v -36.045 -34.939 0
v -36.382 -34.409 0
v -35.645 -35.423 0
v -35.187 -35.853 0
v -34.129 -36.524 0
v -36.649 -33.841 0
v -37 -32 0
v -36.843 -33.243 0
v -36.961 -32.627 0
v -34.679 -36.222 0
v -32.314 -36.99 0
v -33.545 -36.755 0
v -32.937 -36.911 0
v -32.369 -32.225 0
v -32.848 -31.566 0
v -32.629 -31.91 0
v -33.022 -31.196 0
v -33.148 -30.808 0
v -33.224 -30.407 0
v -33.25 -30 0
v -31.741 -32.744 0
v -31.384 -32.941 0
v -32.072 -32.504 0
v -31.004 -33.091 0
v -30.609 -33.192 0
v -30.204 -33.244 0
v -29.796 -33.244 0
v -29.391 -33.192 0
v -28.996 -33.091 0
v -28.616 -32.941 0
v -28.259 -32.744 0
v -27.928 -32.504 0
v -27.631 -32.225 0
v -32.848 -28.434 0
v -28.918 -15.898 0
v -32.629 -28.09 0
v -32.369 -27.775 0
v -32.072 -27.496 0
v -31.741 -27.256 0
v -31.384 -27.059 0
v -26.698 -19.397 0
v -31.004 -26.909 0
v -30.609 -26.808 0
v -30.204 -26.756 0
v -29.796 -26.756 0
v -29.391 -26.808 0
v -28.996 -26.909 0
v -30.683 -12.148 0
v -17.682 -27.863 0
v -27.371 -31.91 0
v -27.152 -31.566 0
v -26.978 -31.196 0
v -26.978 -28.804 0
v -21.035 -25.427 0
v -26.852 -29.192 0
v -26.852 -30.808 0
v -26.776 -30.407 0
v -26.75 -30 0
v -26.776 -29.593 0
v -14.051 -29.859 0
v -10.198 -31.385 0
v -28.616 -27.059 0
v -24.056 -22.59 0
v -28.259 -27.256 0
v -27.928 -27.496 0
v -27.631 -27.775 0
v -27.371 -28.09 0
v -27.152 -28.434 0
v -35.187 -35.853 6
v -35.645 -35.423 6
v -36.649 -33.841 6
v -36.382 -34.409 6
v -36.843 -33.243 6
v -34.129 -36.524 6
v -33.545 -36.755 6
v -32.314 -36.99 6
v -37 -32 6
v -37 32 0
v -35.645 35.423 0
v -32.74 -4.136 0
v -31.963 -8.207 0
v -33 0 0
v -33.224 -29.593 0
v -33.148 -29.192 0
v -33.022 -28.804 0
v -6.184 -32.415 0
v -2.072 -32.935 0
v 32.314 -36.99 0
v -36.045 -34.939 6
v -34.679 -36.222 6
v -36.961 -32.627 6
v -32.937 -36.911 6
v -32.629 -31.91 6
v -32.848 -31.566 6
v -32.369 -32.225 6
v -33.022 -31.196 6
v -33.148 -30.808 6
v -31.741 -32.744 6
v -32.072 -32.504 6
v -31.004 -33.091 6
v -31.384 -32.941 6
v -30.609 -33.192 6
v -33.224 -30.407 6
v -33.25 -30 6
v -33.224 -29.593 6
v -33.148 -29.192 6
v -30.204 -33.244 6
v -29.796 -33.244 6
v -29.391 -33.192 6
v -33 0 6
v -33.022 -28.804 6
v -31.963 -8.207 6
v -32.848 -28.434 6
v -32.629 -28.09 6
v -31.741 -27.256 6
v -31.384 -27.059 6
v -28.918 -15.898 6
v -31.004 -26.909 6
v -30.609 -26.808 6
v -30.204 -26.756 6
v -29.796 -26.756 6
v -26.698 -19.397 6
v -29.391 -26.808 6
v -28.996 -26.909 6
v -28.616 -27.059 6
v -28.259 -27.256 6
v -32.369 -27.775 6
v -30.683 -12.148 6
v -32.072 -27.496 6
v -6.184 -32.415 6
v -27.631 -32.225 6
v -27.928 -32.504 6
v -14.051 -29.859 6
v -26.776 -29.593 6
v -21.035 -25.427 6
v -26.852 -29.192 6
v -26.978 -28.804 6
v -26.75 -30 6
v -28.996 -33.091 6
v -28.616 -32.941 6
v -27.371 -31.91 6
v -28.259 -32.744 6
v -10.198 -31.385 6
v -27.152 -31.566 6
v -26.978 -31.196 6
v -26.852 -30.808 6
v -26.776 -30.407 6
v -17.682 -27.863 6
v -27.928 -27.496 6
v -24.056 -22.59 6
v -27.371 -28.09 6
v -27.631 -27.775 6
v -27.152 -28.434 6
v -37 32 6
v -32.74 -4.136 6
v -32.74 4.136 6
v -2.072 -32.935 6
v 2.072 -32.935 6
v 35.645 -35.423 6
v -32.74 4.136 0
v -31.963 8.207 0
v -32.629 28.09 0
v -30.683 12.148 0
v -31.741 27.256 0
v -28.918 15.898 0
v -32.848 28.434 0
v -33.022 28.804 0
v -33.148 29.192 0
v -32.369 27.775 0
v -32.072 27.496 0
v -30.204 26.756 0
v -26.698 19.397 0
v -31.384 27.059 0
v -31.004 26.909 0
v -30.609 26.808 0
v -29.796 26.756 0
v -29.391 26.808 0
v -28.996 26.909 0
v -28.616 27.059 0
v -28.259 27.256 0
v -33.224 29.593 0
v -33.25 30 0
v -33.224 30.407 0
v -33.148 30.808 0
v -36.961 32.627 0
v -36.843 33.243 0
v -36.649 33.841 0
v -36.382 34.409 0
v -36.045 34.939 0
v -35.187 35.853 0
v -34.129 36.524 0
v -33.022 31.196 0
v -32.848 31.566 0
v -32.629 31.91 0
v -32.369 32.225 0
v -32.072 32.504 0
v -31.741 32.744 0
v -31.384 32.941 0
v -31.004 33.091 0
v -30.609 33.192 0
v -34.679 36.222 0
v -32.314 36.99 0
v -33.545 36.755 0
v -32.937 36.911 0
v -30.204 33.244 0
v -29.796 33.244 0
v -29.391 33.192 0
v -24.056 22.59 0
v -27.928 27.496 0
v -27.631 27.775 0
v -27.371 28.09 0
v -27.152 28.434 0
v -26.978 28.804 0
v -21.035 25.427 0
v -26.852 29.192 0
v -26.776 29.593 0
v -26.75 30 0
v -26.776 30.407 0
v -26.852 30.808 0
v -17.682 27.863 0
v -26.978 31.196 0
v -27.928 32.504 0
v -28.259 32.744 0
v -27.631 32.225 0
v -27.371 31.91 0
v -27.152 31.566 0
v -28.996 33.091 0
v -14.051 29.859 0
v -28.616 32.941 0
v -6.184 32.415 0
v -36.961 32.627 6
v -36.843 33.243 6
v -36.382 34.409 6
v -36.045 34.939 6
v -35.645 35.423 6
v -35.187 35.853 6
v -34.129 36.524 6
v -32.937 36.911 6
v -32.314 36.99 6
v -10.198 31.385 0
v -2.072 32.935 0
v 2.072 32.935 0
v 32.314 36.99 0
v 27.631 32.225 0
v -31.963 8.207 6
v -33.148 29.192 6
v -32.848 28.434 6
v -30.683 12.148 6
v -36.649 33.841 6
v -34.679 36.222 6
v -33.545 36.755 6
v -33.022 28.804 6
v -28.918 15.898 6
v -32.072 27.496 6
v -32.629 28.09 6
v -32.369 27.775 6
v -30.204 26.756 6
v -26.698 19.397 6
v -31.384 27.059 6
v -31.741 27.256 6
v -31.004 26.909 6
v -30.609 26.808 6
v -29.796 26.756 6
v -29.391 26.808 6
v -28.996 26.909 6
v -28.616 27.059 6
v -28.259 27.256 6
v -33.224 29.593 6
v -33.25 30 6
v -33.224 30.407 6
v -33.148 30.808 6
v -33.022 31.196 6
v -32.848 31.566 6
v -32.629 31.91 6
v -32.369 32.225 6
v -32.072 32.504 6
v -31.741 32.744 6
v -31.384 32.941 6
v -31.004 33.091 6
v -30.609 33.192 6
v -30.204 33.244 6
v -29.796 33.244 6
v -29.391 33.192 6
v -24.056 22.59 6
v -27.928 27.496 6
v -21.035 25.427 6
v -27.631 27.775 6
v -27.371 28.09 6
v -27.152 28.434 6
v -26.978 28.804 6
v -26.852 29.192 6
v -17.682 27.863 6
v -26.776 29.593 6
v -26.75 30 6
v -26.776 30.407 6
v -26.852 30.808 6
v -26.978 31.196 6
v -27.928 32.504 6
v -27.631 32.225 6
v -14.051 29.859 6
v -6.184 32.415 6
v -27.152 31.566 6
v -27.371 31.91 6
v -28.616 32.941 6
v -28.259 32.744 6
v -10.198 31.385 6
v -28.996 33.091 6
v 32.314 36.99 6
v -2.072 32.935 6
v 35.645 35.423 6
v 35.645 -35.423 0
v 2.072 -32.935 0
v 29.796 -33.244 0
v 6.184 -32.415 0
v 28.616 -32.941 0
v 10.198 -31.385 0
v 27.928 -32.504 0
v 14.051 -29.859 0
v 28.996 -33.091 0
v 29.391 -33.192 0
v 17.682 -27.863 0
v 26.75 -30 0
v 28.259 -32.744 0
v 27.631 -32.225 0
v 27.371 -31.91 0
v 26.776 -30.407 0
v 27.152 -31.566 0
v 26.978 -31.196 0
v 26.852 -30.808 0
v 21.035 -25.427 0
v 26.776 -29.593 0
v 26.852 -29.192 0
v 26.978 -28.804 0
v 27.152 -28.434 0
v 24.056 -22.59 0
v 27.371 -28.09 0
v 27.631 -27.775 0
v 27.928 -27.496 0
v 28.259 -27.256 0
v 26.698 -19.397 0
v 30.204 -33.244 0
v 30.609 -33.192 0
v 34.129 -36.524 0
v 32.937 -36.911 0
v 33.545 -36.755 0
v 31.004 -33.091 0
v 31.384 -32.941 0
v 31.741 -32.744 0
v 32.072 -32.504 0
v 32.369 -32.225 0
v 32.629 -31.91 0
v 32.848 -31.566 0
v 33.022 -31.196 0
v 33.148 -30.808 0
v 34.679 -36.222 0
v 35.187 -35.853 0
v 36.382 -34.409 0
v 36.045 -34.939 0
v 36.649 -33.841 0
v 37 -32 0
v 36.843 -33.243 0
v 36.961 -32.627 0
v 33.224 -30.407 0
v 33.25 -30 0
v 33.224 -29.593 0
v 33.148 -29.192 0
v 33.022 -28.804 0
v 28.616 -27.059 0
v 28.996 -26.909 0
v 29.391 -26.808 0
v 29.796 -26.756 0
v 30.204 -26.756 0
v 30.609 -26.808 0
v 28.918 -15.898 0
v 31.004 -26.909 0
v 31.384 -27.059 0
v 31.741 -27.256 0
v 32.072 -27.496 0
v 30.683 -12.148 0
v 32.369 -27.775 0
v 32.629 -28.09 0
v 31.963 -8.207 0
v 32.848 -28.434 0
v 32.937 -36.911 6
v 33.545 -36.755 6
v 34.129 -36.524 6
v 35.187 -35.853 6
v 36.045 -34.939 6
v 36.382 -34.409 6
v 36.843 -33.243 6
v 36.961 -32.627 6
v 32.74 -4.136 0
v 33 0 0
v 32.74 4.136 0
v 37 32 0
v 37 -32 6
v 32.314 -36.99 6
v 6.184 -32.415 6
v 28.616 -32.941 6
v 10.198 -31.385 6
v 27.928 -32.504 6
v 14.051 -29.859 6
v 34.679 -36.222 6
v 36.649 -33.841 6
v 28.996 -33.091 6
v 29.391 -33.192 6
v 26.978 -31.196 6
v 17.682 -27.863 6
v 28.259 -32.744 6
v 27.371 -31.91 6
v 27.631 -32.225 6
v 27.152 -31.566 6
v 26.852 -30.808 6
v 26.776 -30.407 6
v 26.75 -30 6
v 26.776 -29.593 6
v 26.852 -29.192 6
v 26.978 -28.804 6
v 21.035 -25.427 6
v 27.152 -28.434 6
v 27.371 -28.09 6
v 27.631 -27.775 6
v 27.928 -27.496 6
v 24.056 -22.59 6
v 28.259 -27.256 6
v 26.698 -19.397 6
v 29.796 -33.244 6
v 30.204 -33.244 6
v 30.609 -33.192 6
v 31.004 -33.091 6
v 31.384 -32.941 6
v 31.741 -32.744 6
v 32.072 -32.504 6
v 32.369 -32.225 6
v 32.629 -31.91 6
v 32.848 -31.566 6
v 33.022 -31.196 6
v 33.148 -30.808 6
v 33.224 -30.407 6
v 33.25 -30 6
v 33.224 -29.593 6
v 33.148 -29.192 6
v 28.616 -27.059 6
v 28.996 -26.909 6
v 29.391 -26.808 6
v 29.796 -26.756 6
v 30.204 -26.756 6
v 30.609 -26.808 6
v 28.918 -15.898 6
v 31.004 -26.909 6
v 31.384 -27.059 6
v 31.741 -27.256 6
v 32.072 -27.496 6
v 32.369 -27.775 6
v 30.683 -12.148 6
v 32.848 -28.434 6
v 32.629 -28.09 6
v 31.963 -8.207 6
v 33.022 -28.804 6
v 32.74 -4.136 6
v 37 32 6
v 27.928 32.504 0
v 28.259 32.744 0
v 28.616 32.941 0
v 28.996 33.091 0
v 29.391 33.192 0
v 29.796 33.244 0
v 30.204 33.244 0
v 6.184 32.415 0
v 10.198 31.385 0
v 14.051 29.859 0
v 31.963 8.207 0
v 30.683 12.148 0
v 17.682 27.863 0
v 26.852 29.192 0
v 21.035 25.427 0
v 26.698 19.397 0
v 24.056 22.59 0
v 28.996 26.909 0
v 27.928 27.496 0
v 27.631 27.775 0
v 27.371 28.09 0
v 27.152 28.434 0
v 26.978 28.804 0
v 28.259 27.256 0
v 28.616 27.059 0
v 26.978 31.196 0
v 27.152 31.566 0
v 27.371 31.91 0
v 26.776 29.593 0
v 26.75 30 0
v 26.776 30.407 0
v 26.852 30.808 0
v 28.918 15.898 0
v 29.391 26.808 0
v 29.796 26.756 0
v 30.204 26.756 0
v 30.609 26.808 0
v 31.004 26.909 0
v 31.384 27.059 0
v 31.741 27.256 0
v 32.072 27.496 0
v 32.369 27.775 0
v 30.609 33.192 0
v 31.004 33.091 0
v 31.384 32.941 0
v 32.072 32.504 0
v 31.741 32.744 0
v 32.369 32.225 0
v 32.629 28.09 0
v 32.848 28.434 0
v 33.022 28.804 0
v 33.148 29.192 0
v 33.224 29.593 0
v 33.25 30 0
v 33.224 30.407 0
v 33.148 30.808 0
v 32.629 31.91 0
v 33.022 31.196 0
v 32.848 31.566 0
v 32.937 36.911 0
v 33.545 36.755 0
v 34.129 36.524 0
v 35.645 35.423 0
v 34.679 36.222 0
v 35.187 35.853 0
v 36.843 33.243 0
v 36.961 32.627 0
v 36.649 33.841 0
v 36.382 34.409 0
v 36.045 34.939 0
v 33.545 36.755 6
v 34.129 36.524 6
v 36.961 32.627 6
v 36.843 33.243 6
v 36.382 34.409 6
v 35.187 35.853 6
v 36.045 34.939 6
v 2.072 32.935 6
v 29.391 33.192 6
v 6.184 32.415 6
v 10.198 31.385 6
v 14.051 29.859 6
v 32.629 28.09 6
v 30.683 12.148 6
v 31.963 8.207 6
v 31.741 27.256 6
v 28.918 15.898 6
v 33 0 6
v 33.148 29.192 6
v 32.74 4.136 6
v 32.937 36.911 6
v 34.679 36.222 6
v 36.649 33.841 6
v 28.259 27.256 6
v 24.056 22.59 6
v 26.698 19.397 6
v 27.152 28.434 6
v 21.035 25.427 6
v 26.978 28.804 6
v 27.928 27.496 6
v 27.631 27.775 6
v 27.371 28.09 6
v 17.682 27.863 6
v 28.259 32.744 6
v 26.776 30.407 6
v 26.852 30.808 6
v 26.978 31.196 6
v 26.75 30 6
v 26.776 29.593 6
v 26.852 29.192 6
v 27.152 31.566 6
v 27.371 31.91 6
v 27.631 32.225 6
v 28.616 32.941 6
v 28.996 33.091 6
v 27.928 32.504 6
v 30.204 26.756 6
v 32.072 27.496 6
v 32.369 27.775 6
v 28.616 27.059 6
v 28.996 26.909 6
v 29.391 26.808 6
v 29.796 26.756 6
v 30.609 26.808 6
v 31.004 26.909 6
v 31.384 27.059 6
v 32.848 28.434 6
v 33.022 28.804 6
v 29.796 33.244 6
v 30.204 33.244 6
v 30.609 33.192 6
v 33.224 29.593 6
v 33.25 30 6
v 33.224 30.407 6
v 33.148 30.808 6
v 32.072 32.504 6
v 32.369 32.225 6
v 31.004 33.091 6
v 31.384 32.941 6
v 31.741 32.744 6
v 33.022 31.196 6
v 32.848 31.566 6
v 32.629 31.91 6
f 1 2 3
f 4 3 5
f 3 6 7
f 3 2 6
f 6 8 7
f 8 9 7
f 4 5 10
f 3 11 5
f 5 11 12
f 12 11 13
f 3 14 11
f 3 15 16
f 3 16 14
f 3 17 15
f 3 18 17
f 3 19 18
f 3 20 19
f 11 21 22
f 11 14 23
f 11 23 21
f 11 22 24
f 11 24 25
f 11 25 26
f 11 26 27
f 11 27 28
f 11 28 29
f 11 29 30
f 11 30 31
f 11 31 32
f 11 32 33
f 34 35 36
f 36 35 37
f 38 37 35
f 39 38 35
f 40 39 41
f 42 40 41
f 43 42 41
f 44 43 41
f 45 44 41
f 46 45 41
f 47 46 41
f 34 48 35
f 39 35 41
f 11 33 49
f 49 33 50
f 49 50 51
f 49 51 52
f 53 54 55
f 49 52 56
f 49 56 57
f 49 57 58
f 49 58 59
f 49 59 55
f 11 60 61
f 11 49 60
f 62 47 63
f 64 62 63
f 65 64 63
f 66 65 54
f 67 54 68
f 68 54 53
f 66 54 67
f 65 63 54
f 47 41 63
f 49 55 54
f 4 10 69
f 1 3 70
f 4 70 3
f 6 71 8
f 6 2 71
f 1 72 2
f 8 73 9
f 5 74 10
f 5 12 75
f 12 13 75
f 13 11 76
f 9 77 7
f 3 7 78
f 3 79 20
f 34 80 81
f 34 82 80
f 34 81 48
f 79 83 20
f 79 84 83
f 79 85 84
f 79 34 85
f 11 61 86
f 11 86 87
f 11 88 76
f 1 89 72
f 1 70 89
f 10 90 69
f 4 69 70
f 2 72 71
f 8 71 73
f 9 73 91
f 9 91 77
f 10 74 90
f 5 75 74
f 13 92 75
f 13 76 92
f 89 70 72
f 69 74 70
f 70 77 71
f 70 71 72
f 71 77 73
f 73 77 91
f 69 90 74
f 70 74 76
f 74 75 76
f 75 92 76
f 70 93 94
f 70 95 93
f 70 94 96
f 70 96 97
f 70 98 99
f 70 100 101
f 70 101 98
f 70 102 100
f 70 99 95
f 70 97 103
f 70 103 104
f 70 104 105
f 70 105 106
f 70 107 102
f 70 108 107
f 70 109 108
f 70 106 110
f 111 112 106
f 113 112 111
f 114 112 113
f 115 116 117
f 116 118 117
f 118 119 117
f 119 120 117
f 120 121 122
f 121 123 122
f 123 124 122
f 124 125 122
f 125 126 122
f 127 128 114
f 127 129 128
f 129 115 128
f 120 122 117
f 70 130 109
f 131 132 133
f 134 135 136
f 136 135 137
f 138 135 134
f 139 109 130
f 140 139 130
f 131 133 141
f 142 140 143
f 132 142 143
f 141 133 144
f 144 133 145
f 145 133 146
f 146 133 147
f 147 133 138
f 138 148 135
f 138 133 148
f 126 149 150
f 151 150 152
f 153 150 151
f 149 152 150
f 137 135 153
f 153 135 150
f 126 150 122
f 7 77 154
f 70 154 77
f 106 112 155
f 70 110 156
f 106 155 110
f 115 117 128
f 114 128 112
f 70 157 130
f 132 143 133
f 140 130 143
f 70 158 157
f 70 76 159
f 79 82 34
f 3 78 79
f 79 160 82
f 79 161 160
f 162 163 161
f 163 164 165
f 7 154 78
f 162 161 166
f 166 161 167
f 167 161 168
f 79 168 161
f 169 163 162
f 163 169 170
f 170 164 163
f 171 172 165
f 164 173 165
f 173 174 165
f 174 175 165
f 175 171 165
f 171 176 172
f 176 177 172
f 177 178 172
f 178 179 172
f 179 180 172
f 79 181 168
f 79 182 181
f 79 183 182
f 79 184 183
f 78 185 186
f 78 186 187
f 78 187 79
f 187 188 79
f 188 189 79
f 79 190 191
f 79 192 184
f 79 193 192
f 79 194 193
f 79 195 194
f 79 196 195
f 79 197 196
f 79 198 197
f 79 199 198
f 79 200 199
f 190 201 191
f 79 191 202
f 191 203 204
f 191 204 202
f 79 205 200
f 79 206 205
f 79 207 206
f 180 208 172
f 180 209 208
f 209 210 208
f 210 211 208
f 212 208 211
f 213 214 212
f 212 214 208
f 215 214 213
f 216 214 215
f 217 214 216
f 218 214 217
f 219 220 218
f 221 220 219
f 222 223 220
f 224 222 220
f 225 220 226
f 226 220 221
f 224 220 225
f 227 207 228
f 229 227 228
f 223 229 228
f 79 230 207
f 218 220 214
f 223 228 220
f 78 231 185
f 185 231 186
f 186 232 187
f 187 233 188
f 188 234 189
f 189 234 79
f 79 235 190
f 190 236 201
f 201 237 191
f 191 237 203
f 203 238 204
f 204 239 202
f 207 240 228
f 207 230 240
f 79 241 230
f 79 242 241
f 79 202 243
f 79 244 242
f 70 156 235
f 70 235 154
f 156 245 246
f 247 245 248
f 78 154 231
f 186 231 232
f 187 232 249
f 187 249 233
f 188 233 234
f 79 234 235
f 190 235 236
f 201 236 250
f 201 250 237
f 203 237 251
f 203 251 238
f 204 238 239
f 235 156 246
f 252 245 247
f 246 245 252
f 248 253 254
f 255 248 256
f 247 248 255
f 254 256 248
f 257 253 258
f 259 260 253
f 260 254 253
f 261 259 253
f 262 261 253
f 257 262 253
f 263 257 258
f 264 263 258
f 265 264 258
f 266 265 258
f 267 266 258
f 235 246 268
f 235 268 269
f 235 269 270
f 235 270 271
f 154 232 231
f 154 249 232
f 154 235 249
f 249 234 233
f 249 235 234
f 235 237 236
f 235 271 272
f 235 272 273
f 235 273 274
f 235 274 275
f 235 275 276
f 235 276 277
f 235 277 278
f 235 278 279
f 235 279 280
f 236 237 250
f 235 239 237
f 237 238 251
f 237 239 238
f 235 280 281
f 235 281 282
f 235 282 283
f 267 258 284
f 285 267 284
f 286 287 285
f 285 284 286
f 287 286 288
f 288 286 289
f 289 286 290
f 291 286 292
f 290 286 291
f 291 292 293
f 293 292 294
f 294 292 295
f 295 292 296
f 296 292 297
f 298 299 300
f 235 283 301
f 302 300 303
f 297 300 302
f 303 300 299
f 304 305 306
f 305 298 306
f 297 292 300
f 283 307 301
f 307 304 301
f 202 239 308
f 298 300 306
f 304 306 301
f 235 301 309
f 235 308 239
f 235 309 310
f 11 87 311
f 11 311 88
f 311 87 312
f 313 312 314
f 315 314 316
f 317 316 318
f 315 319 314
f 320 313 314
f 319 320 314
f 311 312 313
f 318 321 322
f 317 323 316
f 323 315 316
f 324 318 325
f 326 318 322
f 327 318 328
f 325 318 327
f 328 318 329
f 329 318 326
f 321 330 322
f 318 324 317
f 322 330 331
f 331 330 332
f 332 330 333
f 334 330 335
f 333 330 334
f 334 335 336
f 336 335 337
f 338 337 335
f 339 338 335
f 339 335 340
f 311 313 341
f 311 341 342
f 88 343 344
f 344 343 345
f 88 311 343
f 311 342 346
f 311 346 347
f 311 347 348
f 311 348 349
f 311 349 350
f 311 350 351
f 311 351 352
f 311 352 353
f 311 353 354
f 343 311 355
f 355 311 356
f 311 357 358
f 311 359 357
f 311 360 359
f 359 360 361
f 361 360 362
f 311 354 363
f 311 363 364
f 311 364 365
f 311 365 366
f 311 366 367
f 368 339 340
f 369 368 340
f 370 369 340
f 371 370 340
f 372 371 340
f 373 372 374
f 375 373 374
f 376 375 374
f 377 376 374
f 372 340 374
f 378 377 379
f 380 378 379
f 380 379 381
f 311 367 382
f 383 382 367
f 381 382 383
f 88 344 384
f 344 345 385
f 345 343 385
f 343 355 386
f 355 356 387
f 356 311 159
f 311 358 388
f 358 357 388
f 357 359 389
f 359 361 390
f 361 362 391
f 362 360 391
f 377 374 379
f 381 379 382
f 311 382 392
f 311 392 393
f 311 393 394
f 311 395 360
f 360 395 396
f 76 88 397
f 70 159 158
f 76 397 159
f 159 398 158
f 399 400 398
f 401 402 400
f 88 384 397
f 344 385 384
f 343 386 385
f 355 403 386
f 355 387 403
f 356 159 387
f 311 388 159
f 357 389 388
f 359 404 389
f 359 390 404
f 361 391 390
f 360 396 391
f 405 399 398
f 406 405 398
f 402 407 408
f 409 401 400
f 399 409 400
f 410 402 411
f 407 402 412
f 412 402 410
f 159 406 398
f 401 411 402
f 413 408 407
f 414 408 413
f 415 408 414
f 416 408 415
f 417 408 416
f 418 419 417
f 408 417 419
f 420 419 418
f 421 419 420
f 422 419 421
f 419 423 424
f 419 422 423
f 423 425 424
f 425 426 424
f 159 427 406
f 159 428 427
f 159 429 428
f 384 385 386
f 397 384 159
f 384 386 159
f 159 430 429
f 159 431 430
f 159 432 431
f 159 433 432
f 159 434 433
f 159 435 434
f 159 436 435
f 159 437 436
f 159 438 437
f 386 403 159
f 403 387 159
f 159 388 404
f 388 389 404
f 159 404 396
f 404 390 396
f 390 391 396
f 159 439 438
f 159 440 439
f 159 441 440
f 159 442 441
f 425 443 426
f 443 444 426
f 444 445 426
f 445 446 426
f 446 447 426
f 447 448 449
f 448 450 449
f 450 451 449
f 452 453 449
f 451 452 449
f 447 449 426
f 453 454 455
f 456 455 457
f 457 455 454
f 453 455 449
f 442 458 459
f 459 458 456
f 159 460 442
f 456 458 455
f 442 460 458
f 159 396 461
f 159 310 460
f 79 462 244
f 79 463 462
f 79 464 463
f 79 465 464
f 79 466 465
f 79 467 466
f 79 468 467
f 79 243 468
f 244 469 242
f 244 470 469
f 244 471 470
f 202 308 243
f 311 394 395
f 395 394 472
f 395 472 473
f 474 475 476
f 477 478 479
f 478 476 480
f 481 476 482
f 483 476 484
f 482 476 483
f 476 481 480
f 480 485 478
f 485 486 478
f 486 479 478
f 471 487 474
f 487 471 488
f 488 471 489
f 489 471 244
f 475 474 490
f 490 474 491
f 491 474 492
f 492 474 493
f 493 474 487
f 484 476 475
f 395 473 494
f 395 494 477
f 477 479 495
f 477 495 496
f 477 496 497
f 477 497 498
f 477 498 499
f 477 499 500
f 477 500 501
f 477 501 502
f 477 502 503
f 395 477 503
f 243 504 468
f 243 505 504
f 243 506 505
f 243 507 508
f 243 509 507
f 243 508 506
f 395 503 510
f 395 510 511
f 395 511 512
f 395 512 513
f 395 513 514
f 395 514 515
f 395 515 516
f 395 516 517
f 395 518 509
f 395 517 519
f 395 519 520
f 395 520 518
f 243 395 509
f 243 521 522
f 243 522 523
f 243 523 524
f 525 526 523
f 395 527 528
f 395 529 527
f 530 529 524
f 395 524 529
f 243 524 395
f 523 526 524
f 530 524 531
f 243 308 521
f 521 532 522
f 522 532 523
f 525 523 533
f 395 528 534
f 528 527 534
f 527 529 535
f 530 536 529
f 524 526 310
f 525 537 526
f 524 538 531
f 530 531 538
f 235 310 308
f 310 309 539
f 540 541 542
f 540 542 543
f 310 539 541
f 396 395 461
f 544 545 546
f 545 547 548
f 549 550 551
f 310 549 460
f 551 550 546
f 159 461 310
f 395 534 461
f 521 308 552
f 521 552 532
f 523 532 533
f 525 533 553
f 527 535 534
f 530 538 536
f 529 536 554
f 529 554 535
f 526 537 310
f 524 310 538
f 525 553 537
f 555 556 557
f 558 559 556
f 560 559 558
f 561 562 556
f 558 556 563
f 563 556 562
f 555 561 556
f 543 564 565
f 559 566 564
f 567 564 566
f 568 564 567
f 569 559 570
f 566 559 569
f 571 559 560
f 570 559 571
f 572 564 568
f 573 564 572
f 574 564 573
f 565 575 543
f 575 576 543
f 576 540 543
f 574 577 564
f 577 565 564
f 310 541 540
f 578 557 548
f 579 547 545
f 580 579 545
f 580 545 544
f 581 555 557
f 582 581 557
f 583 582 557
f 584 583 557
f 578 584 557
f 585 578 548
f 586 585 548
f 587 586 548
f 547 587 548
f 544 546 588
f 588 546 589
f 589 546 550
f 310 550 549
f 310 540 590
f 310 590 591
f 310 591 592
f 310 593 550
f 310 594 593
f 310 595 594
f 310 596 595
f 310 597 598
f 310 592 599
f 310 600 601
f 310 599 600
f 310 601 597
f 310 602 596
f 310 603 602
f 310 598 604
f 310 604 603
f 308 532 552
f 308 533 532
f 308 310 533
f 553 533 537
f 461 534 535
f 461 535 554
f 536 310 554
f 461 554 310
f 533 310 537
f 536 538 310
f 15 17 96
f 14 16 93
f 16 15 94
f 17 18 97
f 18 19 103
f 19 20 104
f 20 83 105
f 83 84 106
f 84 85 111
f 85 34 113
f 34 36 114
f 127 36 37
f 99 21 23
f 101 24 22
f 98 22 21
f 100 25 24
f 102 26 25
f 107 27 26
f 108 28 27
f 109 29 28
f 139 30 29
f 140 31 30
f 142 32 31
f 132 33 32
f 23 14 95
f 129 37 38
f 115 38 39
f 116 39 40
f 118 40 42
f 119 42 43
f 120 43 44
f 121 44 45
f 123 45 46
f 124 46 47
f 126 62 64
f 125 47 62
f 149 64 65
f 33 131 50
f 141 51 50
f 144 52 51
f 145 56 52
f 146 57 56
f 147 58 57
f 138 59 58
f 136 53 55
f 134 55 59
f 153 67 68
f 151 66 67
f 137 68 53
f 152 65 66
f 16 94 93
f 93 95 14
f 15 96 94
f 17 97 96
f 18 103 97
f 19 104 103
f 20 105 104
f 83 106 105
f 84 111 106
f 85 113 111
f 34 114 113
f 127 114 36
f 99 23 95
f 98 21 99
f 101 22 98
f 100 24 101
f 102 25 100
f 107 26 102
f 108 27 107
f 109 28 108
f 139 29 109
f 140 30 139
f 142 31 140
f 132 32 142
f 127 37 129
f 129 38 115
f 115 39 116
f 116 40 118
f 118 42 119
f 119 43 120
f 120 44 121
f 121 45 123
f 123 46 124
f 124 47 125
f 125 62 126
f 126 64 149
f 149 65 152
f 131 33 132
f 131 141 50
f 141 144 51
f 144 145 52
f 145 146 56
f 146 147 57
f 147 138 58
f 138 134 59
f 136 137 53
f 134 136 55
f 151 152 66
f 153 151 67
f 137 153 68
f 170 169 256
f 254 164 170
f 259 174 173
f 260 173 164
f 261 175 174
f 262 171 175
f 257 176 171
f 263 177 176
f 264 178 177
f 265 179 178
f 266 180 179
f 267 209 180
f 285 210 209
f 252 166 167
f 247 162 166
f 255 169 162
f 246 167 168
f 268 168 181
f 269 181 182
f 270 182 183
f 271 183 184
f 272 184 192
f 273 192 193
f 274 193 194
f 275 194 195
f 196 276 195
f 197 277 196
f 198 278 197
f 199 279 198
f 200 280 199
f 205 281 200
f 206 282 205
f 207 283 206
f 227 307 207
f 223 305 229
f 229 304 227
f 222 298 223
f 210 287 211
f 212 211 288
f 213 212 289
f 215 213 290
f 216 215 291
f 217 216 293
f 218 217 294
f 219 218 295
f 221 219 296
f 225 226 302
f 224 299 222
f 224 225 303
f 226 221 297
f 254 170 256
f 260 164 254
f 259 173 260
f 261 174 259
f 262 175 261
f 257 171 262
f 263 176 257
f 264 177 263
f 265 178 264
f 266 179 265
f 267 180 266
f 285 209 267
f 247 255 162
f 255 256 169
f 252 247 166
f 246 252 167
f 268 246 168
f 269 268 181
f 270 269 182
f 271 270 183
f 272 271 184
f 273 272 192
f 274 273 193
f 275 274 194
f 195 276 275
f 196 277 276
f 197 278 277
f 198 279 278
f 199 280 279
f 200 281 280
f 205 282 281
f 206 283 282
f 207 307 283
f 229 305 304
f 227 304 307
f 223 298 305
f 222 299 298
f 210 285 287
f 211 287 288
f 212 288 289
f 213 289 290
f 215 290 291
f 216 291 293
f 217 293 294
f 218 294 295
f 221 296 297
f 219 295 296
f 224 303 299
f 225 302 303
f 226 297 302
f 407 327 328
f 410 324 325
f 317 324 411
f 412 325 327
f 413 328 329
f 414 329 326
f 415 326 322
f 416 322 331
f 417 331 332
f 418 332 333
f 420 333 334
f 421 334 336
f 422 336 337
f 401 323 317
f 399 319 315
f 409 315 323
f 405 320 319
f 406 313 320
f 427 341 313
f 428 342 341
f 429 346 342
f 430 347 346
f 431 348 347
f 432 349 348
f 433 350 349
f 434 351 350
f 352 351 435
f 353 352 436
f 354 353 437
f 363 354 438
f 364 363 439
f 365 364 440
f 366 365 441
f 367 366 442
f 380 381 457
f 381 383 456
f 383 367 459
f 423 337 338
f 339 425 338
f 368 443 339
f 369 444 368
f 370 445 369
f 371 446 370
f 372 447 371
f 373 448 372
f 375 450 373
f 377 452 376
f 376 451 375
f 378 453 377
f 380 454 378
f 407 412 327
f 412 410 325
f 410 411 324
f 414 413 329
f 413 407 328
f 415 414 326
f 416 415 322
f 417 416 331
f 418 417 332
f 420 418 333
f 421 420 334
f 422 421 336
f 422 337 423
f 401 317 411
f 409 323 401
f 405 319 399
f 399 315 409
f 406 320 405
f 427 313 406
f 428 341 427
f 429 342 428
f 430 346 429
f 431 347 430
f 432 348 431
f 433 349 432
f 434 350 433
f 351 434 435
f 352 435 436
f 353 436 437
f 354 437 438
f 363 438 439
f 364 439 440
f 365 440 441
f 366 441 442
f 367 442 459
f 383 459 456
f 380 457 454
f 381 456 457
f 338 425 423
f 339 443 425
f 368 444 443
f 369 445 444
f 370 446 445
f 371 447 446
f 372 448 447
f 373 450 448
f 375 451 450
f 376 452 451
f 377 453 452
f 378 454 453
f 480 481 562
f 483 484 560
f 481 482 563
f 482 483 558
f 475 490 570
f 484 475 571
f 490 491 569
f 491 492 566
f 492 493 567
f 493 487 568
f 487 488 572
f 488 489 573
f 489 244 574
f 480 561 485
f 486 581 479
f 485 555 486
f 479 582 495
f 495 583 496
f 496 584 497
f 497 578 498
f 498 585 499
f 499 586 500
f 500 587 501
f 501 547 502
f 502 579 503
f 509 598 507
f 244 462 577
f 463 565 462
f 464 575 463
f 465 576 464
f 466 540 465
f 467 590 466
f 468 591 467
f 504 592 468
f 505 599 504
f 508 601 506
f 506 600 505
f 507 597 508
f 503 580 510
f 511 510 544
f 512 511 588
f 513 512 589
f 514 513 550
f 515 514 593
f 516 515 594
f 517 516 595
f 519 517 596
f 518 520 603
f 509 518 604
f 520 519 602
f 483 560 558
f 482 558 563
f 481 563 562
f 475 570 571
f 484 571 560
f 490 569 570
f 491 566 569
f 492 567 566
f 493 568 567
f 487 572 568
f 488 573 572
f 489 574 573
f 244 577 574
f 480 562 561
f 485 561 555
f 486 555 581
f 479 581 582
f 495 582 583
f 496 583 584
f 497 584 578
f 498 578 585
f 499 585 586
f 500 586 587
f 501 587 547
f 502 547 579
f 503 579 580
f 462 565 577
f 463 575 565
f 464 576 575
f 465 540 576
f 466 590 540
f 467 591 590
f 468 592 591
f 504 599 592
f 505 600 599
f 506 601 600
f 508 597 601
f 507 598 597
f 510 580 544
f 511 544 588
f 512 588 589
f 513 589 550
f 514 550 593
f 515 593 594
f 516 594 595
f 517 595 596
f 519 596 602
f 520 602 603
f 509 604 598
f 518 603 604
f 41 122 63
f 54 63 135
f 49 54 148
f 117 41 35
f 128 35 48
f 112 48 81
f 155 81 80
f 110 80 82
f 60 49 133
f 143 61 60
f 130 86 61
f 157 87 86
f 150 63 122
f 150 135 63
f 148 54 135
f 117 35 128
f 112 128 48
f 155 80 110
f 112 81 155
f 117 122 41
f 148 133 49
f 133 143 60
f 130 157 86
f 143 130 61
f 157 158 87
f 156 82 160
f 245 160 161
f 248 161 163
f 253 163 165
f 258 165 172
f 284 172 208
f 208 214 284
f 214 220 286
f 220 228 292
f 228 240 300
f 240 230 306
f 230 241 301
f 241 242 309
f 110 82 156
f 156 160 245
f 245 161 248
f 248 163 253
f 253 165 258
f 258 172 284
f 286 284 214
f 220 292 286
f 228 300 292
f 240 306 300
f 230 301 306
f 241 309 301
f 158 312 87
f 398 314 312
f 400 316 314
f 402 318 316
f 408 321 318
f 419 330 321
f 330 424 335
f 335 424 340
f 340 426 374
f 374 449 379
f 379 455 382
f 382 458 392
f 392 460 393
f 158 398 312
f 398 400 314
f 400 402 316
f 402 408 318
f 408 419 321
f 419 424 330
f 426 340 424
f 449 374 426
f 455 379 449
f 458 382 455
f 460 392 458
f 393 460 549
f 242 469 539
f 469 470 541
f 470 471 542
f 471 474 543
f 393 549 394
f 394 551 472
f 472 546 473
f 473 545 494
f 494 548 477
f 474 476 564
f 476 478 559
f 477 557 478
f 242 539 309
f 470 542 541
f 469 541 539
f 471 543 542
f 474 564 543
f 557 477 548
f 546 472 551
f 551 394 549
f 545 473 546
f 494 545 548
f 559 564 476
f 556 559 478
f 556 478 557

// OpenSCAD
$fn = 50;

difference() {
	union() {
		hull() {
			translate(v = [-32.0, 32.0, 0]) {
				cylinder(h = 6, r = 5);
			}
			translate(v = [32.0, 32.0, 0]) {
				cylinder(h = 6, r = 5);
			}
			translate(v = [-32.0, -32.0, 0]) {
				cylinder(h = 6, r = 5);
			}
			translate(v = [32.0, -32.0, 0]) {
				cylinder(h = 6, r = 5);
			}
		}
	}
	union() {
		translate(v = [-30.0, -30.0, -100.0]) {
			cylinder(h = 200, r = 3.25);
		}
		translate(v = [-30.0, 30.0, -100.0]) {
			cylinder(h = 200, r = 3.25);
		}
		translate(v = [30.0, -30.0, -100.0]) {
			cylinder(h = 200, r = 3.25);
		}
		translate(v = [30.0, 30.0, -100.0]) {
			cylinder(h = 200, r = 3.25);
		}
		translate(v = [-30.0, -30.0, -100.0]) {
			cylinder(h = 200, r = 1.8);
		}
		translate(v = [-30.0, 30.0, -100.0]) {
			cylinder(h = 200, r = 1.8);
		}
		translate(v = [30.0, -30.0, -100.0]) {
			cylinder(h = 200, r = 1.8);
		}
		translate(v = [30.0, 30.0, -100.0]) {
			cylinder(h = 200, r = 1.8);
		}
		cylinder(h = 6, r = 33.0);
	}
}
